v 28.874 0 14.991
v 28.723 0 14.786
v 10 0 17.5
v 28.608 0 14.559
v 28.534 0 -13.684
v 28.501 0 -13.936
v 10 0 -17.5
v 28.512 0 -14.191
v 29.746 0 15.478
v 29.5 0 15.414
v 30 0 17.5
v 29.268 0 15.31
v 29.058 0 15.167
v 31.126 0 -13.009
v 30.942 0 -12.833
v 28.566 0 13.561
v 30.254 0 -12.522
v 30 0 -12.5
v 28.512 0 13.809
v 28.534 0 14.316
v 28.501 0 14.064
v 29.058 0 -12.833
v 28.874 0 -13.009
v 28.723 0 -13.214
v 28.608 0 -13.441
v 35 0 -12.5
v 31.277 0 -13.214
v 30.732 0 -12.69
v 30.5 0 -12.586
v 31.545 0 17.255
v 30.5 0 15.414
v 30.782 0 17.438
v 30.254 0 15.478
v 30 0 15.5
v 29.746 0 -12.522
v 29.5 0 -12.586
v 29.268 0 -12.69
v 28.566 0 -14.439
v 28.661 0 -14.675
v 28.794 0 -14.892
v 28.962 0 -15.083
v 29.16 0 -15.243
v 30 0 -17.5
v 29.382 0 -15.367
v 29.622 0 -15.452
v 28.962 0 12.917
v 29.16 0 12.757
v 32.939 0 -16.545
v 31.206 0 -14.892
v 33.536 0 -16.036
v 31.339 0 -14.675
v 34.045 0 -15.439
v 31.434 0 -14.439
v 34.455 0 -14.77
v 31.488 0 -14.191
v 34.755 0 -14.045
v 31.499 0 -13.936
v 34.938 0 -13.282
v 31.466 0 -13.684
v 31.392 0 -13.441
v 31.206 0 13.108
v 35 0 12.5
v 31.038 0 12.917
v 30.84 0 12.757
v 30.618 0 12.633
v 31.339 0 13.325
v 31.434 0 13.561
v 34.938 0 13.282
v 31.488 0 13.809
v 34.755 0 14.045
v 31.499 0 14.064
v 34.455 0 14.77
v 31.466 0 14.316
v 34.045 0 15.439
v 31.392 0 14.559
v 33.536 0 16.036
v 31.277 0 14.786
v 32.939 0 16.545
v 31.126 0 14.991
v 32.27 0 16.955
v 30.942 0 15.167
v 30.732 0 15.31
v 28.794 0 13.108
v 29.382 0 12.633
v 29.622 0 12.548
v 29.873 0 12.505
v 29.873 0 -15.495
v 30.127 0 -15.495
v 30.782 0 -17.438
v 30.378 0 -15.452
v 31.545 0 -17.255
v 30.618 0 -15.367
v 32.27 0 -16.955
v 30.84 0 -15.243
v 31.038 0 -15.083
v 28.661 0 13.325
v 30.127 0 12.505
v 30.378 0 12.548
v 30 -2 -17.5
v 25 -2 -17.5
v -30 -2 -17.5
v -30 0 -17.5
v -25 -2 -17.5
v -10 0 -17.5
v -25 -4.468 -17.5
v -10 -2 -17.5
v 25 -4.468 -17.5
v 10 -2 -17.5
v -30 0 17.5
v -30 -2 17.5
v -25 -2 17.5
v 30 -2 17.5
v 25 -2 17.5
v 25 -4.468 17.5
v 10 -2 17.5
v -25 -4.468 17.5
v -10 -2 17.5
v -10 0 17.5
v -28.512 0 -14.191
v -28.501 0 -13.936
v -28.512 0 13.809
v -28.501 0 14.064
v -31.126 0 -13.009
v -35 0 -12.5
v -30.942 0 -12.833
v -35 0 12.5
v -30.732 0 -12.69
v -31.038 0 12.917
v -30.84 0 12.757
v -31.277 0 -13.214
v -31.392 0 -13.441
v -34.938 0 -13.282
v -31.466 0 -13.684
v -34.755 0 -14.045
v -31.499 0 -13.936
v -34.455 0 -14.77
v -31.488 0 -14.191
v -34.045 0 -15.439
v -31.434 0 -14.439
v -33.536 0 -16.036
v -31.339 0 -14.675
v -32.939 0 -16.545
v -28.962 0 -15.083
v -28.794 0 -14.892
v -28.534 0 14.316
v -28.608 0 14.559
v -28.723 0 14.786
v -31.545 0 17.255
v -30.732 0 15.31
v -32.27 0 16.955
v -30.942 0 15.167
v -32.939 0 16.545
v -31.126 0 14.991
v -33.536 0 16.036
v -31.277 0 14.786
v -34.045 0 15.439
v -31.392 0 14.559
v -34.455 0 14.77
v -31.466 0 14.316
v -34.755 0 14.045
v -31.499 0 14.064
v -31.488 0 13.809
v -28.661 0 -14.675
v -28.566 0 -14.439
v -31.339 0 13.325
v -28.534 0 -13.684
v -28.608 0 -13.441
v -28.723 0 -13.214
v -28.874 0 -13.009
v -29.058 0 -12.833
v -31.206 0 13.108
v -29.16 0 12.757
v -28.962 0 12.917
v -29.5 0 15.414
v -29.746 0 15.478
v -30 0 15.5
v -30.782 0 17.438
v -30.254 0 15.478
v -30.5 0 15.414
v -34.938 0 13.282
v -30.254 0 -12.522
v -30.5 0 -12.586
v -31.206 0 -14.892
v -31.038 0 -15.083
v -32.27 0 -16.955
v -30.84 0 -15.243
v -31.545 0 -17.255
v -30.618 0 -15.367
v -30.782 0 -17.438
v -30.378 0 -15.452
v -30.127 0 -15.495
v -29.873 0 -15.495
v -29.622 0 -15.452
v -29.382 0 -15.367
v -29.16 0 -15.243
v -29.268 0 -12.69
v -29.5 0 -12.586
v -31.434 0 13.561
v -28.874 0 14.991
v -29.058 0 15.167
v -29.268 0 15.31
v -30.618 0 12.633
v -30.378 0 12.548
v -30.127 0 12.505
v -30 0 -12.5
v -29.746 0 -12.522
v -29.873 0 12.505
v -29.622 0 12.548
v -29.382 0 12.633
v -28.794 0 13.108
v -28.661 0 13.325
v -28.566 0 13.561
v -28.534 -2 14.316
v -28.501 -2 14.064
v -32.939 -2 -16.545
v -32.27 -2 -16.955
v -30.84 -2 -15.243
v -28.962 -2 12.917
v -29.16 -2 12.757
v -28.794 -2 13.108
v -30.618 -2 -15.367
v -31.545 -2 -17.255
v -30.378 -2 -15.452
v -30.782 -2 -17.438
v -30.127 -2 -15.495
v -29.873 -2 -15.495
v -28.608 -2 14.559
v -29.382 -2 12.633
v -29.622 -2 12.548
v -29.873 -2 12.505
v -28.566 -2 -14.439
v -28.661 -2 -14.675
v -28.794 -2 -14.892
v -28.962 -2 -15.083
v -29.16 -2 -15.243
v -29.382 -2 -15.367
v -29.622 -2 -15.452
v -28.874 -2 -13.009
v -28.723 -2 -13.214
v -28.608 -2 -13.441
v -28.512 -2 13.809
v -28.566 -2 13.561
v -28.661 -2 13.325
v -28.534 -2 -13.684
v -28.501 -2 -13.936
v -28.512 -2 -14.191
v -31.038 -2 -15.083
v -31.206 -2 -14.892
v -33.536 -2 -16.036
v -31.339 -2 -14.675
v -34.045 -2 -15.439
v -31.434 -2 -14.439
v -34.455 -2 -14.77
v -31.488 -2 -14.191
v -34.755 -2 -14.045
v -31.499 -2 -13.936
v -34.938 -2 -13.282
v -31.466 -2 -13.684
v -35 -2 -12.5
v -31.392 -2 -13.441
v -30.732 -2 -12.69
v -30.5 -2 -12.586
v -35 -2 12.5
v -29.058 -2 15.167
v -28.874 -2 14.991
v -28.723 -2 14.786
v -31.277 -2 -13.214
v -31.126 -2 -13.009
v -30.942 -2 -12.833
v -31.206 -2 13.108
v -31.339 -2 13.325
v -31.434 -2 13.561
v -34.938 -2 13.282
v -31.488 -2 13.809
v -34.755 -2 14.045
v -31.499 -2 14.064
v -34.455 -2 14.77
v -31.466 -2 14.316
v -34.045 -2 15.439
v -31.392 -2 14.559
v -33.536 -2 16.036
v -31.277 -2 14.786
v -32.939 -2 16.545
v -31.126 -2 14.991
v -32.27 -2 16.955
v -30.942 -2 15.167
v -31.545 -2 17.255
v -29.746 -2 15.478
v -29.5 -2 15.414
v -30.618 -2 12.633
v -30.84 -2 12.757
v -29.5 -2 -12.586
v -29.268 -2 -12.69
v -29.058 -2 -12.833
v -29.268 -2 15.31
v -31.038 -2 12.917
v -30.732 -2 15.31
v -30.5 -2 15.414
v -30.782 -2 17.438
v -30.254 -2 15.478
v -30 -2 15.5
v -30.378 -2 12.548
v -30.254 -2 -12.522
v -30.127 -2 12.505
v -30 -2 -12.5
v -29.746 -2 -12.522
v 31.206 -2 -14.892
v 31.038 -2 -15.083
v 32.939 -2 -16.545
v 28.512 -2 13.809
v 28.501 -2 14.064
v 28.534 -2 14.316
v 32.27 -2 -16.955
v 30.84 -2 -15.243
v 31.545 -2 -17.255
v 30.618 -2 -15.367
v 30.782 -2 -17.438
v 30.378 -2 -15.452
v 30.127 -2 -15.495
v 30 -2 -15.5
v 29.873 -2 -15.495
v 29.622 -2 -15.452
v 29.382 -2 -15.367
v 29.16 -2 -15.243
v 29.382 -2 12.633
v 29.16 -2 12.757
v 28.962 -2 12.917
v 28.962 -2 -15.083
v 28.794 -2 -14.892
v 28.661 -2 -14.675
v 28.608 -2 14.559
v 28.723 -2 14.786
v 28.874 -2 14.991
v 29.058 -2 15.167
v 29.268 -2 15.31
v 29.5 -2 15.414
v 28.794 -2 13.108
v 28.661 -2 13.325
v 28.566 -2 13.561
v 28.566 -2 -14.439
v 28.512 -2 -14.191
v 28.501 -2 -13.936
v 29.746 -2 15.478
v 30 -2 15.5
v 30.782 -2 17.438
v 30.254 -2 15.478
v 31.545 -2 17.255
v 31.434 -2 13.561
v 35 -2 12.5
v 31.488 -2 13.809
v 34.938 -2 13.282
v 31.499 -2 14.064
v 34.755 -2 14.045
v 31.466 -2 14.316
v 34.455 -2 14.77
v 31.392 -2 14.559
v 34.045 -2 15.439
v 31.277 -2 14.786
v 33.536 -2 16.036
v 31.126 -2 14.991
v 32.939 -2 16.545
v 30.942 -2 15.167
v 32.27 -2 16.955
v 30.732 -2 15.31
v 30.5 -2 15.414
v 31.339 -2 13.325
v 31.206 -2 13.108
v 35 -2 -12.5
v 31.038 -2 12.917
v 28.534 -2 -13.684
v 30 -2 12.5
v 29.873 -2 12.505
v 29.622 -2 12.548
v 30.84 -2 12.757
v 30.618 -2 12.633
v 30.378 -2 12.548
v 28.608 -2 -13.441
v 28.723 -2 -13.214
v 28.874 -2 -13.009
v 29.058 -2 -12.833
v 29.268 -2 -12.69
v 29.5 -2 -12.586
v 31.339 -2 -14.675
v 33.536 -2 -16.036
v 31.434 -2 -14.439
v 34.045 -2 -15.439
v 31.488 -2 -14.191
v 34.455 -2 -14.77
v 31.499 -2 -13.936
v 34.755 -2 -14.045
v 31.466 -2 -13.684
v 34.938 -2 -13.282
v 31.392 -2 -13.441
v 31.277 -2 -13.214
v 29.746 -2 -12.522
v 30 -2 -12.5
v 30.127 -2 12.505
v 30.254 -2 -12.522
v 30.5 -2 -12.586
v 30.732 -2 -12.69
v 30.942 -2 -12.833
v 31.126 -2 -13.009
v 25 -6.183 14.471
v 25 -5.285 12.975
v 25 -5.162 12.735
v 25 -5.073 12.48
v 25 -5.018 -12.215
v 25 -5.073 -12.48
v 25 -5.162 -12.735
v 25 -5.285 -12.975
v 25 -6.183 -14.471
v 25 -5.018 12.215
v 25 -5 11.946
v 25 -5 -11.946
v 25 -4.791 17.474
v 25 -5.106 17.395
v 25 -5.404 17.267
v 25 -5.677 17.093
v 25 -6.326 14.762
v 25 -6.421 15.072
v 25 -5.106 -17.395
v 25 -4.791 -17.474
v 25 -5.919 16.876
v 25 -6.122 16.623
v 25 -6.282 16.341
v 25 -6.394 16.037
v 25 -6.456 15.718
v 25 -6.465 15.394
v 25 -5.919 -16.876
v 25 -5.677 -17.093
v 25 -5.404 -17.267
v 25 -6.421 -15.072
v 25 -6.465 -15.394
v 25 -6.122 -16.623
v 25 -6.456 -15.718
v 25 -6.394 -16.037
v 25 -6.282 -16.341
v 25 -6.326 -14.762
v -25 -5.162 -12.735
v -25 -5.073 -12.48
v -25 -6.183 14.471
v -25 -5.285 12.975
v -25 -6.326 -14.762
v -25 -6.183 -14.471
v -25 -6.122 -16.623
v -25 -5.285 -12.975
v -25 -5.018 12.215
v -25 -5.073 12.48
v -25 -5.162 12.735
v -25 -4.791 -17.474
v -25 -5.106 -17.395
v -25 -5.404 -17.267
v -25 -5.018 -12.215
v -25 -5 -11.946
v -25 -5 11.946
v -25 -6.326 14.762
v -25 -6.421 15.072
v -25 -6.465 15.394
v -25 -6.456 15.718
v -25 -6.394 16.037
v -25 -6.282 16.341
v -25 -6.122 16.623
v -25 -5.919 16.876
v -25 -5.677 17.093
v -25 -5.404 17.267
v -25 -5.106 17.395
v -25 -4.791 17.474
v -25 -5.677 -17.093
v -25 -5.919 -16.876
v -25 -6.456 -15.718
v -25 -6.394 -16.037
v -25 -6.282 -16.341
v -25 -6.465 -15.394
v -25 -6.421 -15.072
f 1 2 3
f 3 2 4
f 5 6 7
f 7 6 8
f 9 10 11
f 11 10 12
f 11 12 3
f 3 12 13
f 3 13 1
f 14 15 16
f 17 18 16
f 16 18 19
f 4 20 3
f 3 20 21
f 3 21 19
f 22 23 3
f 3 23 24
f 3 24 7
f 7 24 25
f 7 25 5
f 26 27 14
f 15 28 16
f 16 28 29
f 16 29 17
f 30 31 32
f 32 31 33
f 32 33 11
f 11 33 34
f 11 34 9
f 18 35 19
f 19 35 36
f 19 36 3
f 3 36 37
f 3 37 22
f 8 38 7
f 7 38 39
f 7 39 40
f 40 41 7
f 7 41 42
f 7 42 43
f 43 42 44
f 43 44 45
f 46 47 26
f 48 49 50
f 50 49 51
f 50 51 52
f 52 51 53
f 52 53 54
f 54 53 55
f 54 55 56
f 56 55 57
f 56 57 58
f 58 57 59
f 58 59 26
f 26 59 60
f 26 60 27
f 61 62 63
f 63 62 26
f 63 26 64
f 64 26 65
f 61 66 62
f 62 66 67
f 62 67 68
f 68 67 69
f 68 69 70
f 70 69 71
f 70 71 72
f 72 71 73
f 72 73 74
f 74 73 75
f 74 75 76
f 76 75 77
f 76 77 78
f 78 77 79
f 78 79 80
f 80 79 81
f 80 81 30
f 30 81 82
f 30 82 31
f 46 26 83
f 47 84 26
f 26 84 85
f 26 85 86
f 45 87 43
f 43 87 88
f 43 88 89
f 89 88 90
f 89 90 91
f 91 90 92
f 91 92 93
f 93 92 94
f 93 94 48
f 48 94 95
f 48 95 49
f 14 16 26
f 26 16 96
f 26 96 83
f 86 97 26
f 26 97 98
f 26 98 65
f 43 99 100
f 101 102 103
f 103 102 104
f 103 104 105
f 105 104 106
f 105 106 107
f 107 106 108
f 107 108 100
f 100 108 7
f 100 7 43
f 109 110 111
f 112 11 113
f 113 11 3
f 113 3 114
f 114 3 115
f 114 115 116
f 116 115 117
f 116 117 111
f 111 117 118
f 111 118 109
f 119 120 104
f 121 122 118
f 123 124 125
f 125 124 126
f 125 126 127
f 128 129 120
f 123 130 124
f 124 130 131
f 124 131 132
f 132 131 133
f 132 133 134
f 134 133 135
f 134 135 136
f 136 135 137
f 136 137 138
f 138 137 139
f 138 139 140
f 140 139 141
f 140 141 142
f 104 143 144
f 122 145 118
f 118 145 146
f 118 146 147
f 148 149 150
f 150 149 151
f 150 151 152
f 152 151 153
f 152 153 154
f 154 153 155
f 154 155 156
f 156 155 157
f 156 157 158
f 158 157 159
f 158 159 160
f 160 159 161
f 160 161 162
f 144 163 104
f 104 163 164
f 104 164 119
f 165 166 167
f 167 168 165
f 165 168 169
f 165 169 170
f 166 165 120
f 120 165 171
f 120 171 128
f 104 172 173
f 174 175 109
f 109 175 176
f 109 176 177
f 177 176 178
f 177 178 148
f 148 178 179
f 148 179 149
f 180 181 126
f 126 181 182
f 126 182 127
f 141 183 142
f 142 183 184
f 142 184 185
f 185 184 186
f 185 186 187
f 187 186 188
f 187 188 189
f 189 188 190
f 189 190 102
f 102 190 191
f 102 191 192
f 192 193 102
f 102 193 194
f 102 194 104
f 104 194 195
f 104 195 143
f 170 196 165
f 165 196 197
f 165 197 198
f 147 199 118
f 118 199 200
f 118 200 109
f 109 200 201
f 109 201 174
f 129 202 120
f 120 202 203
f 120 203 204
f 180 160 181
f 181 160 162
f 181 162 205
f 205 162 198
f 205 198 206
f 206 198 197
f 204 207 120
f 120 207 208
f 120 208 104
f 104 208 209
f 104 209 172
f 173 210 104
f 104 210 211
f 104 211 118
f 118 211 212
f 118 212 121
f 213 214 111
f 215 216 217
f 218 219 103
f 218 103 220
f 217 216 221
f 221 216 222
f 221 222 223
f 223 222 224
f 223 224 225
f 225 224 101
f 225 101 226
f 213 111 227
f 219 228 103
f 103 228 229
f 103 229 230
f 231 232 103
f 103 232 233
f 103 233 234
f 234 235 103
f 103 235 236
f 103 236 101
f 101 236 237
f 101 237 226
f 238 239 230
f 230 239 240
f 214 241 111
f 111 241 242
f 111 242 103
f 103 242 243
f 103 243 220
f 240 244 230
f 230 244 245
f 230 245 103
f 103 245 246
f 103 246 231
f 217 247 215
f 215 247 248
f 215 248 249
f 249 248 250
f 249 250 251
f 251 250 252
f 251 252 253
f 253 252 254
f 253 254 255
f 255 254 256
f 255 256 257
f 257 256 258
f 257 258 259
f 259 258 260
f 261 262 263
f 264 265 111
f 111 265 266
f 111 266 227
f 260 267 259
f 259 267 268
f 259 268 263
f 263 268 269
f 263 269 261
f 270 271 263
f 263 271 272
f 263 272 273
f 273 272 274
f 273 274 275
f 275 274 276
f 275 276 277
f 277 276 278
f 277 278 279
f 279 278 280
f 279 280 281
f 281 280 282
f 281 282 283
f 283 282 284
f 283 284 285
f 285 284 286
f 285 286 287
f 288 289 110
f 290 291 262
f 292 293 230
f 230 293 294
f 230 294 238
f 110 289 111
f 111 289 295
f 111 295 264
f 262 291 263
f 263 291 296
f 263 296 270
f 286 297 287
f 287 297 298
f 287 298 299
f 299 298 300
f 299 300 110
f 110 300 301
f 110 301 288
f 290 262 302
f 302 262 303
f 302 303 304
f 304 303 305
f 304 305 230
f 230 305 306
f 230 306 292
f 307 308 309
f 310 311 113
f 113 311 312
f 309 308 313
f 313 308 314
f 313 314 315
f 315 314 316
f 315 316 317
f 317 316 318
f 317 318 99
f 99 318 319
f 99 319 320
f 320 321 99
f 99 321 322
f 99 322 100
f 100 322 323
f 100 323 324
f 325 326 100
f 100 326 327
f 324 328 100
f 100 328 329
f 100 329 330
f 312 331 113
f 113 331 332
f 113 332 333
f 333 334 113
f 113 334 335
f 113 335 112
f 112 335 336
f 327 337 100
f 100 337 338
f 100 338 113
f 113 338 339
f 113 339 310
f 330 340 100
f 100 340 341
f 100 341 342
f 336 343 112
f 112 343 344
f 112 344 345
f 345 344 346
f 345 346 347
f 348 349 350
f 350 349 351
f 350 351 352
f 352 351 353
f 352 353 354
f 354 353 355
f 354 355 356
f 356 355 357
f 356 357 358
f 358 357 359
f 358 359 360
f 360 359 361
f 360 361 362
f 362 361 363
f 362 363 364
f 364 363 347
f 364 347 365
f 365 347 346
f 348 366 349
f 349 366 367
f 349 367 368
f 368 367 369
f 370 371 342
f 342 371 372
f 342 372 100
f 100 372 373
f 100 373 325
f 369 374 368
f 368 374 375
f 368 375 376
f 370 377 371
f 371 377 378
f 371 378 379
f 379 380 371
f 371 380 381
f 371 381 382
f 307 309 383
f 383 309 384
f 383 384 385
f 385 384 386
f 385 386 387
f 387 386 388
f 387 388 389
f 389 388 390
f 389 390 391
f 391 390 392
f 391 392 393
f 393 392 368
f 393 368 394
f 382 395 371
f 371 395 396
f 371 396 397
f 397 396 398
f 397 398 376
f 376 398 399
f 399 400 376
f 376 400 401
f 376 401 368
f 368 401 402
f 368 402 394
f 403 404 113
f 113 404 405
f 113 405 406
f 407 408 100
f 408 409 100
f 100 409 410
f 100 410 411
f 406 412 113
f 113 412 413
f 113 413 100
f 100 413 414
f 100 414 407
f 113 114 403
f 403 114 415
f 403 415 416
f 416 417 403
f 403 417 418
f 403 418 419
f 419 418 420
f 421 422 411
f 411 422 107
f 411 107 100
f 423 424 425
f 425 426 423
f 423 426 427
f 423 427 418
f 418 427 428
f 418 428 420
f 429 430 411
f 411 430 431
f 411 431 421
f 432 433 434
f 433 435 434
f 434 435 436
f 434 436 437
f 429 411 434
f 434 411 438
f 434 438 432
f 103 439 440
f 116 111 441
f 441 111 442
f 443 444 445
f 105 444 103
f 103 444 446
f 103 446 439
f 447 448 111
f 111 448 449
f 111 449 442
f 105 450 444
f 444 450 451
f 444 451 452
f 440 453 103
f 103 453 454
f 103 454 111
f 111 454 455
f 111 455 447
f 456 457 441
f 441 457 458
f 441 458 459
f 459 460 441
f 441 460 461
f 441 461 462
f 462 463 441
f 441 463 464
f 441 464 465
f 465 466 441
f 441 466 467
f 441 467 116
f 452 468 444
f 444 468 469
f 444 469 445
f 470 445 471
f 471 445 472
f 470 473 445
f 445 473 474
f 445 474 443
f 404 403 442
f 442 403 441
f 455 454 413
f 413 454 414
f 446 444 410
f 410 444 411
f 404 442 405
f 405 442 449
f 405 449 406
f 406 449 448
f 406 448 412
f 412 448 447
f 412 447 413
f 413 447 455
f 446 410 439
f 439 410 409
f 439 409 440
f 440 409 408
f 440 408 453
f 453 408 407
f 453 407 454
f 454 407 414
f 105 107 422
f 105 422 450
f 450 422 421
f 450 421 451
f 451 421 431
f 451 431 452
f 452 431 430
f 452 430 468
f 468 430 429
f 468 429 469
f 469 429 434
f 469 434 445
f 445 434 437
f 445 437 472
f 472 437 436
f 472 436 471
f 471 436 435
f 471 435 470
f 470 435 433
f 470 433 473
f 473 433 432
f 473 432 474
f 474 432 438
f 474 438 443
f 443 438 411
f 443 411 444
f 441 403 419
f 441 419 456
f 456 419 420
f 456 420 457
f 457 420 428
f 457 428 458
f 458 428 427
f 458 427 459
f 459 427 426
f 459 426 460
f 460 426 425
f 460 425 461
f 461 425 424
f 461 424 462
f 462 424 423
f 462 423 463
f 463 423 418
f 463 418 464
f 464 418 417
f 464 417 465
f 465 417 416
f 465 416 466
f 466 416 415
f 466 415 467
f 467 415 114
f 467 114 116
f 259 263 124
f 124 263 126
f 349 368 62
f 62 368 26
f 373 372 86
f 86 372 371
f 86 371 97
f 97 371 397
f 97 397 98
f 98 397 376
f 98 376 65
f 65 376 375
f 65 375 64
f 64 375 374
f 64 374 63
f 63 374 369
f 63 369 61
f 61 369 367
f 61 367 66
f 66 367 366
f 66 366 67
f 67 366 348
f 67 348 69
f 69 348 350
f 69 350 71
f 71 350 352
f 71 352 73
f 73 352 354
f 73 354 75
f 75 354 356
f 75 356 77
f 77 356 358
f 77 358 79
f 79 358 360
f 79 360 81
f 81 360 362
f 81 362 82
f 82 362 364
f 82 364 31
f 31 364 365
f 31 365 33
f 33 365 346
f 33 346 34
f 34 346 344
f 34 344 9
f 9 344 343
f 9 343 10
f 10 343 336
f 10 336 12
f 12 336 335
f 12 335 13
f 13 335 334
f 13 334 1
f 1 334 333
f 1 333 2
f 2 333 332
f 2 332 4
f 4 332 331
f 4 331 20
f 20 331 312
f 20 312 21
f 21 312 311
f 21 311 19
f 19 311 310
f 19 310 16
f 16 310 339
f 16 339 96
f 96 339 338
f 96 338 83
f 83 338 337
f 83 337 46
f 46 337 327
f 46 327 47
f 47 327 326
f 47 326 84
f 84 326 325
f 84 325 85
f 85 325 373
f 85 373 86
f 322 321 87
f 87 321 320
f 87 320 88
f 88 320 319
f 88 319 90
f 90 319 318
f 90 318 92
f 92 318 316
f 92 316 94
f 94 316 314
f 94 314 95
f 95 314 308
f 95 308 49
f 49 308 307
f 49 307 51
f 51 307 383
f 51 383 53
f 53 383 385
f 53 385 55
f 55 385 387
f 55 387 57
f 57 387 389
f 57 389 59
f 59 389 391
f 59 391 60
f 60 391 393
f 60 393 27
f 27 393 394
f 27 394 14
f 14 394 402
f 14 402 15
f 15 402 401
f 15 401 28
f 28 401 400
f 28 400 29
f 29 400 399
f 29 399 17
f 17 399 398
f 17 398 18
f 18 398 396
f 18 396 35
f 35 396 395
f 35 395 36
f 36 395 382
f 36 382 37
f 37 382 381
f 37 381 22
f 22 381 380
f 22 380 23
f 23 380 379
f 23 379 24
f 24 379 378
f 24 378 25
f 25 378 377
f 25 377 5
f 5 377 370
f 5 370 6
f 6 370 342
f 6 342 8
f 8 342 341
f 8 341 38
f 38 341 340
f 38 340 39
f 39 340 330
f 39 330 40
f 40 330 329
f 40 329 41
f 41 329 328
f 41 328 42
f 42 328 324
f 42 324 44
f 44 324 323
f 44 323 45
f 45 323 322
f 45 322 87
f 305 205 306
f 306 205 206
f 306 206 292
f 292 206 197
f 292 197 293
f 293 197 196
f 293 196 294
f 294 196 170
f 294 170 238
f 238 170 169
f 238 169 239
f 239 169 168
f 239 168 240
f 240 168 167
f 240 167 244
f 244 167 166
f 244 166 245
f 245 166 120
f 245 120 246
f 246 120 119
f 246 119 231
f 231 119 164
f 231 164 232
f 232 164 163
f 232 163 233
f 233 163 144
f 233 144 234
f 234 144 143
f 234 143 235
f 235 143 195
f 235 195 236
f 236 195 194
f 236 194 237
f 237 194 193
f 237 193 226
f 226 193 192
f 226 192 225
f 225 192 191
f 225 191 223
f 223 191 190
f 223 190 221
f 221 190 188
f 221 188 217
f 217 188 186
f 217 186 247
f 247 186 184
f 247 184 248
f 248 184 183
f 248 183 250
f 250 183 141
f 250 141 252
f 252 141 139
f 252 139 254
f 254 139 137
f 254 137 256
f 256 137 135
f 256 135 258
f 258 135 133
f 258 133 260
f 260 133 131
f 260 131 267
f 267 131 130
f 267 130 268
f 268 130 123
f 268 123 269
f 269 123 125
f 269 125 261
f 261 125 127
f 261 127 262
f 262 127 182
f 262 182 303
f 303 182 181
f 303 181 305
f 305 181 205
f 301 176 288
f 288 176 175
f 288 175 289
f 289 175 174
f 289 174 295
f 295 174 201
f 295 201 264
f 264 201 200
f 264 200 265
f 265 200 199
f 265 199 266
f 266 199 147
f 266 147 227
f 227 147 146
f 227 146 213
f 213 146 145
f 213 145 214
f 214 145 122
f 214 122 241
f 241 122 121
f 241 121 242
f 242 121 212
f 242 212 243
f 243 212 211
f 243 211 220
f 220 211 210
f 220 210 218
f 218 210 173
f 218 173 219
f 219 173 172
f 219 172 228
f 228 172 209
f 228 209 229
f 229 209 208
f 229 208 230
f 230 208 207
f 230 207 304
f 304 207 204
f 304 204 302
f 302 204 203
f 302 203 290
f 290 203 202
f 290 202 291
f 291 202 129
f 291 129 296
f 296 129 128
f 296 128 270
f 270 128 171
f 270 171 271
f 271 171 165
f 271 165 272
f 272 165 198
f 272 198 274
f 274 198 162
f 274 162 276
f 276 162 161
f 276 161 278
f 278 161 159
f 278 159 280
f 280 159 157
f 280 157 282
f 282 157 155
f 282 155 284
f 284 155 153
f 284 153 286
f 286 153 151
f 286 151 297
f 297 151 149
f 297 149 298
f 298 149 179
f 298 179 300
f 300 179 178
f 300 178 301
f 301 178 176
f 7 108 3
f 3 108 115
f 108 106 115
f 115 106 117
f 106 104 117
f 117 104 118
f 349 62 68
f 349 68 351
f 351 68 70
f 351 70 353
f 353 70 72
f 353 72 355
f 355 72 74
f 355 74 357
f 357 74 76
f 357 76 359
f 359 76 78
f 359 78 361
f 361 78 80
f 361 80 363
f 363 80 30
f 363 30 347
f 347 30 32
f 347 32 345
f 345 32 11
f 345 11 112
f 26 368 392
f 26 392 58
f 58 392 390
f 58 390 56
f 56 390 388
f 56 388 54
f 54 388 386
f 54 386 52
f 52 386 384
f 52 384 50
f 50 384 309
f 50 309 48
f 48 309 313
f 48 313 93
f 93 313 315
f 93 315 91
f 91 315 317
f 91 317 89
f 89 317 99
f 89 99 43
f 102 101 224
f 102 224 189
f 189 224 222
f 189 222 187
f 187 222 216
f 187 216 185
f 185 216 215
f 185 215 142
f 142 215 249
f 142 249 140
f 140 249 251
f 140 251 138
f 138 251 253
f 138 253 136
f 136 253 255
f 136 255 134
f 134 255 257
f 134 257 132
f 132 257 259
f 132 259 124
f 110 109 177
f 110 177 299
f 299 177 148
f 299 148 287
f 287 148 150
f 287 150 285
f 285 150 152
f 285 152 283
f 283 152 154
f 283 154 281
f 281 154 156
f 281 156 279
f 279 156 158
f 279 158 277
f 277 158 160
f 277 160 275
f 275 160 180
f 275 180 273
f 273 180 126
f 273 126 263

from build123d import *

# Parameters (mm, degrees)
SKETCH1_W               = 50
SKETCH1_H               = 35
BOSS_EXTRUDE1_DEPTH     = 8
CUT_EXTRUDE1_DEPTH      = 1
CUT_EXTRUDE1_DEPTH_BACK = 51
FILLET1_R               = 2
SKETCH5_W               = 35
SKETCH5_H               = 2
BOSS_EXTRUDE2_DEPTH     = 10
SKETCH6_R               = 1.5
CUT_EXTRUDE2_DEPTH      = 10
SKETCH3_W               = 10
SKETCH3_H               = 2
CUT_EXTRUDE3_DEPTH      = 36
FILLET3_R               = 5


with BuildPart() as part:
    # Sketch1 → Boss-Extrude1 (new body)
    with BuildSketch(Plane(origin=(0, 0, 0), x_dir=(1, 0, 0), z_dir=(0, 1, 0))):
        Rectangle(SKETCH1_W, SKETCH1_H)
    extrude(amount=-BOSS_EXTRUDE1_DEPTH)

    # Sketch2 → Cut-Extrude1 (cut, two sides)
    with BuildSketch(Plane(origin=(25, 0, 0), x_dir=(0, 0, -1), z_dir=(1, 0, 0))) as cut_extrude1_sk:
        Polygon((-12.5, -5), (-17.5, -8), (0, -8), (0, -5), align=None)
        Polygon((0, -5), (0, -8), (17.5, -8), (12.5, -5), align=None)
    extrude(amount=CUT_EXTRUDE1_DEPTH, mode=Mode.SUBTRACT)
    extrude(cut_extrude1_sk.sketch, amount=-CUT_EXTRUDE1_DEPTH_BACK, mode=Mode.SUBTRACT)

    # Fillet1
    fillet1_edges = [part.edges().sort_by_distance(p)[0] for p in [
        (0, -8, -17.5),
        (0, -5, 12.5),
        (0, -5, -12.5),
        (0, -8, 17.5),
    ]]
    fillet(fillet1_edges, radius=FILLET1_R)

    # Sketch5 → Boss-Extrude2 (add)
    with BuildSketch(Plane.ZY.offset(25)):
        with Locations((0, -1)):
            Rectangle(SKETCH5_W, SKETCH5_H)
    boss_extrude2 = extrude(amount=BOSS_EXTRUDE2_DEPTH)

    # Mirror1: Boss-Extrude2 across plane
    add(boss_extrude2.mirror(Plane(origin=(0, 0, 0), x_dir=(0, 0, 1), z_dir=(1, 0, 0))))

    # Sketch6 → Cut-Extrude2 (cut)
    with BuildSketch(Plane(origin=(0, 0, 0), x_dir=(1, 0, 0), z_dir=(0, 1, 0))):
        with Locations((-30, 14)):
            Circle(SKETCH6_R)
        with Locations((-30, -14)):
            Circle(SKETCH6_R)
        with Locations((30, -14)):
            Circle(SKETCH6_R)
        with Locations((30, 14)):
            Circle(SKETCH6_R)
    extrude(amount=-CUT_EXTRUDE2_DEPTH, mode=Mode.SUBTRACT)

    # Sketch3 → Cut-Extrude3 (cut, through all)
    with BuildSketch(Plane.XY.offset(17.5)):
        with Locations((5, -1)):
            Rectangle(SKETCH3_W, SKETCH3_H)
        with Locations((-5, -1)):
            Rectangle(SKETCH3_W, SKETCH3_H)
    extrude(amount=-CUT_EXTRUDE3_DEPTH, mode=Mode.SUBTRACT)

    # Fillet3
    fillet3_edges = [part.edges().sort_by_distance(p)[0] for p in [
        (-35, -1, -17.5),
        (-35, -1, 17.5),
        (35, -1, -17.5),
        (35, -1, 17.5),
    ]]
    fillet(fillet3_edges, radius=FILLET3_R)


solid = part.part
